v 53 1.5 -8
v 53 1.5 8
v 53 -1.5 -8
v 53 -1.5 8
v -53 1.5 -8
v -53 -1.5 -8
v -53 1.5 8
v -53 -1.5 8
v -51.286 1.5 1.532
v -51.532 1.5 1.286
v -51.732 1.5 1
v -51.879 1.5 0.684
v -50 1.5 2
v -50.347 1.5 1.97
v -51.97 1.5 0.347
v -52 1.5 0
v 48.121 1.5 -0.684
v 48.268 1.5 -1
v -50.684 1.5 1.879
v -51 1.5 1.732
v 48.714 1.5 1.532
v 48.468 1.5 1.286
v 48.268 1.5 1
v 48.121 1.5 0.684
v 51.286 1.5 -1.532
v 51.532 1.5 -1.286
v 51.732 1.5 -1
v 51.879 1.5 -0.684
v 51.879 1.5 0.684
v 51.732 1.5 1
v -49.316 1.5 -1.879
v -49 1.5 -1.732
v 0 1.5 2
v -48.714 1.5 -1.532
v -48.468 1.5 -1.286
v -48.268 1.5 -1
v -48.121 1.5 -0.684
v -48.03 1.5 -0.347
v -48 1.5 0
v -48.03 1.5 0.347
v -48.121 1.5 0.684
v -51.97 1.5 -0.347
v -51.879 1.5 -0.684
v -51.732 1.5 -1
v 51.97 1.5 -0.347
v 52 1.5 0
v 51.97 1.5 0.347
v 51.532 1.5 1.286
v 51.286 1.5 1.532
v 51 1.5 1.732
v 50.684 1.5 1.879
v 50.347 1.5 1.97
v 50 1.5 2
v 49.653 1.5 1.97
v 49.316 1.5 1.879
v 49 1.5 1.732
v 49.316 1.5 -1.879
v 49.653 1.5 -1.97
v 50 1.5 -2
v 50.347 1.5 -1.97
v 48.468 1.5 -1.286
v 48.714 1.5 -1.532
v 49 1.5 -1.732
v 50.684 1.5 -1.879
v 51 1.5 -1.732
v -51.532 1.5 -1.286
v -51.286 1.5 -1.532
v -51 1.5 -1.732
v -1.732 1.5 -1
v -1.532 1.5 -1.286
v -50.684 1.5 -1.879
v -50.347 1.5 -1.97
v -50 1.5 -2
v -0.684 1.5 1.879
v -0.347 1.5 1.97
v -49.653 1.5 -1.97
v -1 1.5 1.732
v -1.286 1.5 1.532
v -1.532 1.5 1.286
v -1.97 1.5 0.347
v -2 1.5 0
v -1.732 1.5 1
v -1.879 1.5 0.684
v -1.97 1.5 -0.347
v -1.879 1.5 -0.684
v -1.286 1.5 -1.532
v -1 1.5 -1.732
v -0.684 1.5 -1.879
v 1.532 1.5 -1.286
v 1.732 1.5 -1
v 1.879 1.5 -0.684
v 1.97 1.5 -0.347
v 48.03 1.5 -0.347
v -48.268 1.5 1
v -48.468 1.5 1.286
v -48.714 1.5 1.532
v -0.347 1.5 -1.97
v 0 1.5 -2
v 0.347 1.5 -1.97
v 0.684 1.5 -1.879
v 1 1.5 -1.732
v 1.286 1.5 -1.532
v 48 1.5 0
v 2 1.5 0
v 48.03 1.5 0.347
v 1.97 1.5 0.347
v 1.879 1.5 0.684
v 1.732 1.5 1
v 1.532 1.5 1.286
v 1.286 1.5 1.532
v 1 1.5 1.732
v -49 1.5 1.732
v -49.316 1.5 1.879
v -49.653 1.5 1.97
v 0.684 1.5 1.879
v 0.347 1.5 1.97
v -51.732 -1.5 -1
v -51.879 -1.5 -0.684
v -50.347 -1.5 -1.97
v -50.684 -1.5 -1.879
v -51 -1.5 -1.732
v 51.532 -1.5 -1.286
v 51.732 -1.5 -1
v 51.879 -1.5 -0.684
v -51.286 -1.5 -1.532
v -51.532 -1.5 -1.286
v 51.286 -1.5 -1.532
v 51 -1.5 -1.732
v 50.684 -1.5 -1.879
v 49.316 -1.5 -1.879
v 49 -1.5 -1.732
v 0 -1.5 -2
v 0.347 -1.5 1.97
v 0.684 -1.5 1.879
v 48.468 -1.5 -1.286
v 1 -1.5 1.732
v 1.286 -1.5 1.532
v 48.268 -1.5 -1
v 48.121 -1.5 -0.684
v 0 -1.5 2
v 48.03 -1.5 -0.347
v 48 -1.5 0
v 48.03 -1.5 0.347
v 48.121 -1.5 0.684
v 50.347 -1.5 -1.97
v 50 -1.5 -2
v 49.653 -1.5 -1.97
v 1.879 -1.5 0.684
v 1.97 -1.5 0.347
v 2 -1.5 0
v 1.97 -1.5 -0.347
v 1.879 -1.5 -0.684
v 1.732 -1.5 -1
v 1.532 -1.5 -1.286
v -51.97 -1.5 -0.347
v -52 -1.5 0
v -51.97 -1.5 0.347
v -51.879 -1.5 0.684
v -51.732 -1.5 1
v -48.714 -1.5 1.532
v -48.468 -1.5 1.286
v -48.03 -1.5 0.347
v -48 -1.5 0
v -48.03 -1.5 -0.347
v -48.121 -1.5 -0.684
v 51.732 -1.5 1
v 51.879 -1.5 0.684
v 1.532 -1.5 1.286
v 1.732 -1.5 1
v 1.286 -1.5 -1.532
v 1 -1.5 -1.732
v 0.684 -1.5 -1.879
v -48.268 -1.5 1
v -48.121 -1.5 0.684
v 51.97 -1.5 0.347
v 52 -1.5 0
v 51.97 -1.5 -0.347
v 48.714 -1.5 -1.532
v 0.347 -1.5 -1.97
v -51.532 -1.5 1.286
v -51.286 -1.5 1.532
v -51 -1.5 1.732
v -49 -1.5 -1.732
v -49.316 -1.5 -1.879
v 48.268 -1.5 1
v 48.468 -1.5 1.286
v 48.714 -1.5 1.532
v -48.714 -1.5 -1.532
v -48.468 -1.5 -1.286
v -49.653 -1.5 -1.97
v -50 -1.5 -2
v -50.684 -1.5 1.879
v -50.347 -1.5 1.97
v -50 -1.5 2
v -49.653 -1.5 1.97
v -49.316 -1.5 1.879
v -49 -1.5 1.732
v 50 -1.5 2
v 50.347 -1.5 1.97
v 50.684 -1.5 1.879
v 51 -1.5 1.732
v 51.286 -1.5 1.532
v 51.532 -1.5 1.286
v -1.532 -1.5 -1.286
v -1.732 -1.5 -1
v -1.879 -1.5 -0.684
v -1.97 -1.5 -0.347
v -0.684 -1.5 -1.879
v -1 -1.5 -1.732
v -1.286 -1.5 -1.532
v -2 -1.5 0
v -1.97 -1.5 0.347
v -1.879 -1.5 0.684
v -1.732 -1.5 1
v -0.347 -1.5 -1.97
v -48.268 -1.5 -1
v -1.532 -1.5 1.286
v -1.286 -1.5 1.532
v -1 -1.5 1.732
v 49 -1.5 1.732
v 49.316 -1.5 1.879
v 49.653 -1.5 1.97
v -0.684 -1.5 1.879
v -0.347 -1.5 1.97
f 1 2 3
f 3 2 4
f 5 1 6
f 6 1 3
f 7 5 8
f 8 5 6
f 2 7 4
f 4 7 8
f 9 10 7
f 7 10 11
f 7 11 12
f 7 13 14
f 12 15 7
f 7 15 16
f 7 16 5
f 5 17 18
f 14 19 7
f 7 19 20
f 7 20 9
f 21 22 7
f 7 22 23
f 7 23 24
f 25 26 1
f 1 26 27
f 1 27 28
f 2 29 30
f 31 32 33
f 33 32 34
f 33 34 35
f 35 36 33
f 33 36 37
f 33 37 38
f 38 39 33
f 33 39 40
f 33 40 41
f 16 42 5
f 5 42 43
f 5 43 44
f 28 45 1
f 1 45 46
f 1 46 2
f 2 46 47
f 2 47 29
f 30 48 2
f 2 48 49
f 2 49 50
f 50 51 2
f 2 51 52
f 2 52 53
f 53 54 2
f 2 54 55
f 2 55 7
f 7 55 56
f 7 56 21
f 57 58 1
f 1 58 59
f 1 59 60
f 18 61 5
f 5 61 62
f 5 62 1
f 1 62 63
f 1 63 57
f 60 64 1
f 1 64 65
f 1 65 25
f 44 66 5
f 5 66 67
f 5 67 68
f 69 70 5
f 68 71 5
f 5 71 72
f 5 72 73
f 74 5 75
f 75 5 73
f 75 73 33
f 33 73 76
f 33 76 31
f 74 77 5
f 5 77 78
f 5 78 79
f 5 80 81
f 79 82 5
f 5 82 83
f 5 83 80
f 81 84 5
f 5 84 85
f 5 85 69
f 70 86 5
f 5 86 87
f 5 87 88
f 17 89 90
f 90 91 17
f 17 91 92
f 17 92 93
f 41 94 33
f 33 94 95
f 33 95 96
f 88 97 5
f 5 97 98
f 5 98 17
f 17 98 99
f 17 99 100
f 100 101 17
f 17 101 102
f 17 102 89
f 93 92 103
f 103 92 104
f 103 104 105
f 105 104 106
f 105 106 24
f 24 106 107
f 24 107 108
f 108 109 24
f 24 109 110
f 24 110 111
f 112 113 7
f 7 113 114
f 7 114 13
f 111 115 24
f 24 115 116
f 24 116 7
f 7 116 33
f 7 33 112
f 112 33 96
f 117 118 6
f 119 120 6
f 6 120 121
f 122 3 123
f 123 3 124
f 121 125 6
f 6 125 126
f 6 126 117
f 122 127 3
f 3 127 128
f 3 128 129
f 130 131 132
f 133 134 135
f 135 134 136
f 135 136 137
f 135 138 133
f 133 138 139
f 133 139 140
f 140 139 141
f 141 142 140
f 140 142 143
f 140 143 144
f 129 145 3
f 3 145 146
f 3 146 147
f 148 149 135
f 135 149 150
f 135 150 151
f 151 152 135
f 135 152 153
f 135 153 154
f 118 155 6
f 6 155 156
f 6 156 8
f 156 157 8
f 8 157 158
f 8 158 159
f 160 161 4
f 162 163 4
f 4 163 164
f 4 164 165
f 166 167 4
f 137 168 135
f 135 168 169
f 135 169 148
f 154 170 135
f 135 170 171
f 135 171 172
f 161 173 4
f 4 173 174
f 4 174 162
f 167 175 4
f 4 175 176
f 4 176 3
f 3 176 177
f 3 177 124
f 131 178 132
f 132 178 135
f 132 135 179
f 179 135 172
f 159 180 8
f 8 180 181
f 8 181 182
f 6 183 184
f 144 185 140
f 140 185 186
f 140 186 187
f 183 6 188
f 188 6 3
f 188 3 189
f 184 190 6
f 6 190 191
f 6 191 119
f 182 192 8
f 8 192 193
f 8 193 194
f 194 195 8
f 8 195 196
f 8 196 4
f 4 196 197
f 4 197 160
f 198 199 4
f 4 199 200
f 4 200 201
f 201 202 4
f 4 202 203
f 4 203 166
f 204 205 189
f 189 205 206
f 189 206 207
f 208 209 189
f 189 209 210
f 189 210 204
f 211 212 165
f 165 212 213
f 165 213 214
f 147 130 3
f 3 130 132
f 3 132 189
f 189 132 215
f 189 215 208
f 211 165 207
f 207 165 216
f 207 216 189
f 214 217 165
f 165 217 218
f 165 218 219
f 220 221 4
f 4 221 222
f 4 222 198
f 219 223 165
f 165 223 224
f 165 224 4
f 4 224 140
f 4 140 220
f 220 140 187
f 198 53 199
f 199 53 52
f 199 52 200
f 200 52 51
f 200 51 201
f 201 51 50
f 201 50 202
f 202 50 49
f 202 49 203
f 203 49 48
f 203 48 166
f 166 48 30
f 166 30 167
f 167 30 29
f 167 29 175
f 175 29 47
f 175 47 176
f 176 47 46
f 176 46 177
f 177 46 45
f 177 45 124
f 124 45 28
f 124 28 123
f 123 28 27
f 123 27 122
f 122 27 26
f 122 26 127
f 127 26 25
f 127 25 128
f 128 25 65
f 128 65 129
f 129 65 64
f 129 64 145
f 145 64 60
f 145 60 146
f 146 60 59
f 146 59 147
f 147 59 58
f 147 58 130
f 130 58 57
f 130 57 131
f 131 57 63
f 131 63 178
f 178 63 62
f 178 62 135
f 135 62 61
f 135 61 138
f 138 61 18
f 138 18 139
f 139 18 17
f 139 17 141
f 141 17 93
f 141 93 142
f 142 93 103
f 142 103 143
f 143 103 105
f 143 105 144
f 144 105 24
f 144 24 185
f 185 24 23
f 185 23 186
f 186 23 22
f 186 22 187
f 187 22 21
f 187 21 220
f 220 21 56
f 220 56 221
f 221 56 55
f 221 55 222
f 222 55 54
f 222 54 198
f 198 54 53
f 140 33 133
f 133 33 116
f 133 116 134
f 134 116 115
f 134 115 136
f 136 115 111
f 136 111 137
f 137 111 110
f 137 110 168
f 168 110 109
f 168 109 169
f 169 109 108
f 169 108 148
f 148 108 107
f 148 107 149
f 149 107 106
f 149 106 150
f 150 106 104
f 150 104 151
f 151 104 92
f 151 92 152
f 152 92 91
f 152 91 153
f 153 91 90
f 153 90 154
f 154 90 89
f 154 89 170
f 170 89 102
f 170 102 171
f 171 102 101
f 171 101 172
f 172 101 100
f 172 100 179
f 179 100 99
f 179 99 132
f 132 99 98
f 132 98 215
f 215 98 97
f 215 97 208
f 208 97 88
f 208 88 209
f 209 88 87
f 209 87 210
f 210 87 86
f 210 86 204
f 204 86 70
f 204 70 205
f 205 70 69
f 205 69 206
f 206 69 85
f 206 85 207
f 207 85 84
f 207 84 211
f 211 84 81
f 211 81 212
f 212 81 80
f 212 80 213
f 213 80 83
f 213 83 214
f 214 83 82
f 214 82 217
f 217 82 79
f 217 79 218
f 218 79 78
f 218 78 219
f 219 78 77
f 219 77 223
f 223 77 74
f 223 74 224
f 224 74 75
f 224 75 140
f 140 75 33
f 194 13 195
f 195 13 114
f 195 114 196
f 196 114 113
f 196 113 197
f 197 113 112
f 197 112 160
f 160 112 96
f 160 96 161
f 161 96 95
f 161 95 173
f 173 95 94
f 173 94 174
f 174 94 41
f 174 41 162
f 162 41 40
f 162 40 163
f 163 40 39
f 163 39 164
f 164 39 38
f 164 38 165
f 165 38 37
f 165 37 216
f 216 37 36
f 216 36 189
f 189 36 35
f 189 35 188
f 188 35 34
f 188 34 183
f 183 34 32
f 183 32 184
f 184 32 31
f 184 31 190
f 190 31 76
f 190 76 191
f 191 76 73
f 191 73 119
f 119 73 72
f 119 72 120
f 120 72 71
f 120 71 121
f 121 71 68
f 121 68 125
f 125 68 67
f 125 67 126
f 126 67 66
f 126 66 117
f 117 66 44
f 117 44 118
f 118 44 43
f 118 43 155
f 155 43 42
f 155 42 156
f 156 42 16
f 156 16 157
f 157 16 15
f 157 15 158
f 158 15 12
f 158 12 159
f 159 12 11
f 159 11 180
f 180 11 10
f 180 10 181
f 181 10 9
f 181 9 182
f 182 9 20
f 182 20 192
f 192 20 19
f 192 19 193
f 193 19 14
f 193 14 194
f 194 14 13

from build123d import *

# Parameters (mm, degrees)
SKETCH_1_W          = 106
SKETCH_1_H          = 16
EXTRUDE_1_DEPTH     = 1.5
SKETCH_2_R          = 2
CUT_EXTRUDE_1_DEPTH = 55.536684901


with BuildPart() as part:
    # 스케치1 → 보스-돌출1 (new, symmetric)
    with BuildSketch(Plane(origin=(0, 0, 0), x_dir=(1, 0, 0), z_dir=(0, 1, 0))):
        Rectangle(SKETCH_1_W, SKETCH_1_H)
    extrude(amount=EXTRUDE_1_DEPTH, both=True)

    # 스케치2 → 컷-돌출1 (cut, through all)
    with BuildSketch(Plane(origin=(0, 1.5, 4.5), x_dir=(-1, 0, 0), z_dir=(0, -1, 0))):
        with Locations(Location((0, 4.5, 0), (0, 0, 90))):
            Circle(SKETCH_2_R)
        with Locations(Location((50, 4.5, 0), (0, 0, 90))):
            Circle(SKETCH_2_R)
        with Locations(Location((-50, 4.5, 0), (0, 0, 90))):
            Circle(SKETCH_2_R)
    extrude(amount=CUT_EXTRUDE_1_DEPTH, mode=Mode.SUBTRACT)


solid = part.part
